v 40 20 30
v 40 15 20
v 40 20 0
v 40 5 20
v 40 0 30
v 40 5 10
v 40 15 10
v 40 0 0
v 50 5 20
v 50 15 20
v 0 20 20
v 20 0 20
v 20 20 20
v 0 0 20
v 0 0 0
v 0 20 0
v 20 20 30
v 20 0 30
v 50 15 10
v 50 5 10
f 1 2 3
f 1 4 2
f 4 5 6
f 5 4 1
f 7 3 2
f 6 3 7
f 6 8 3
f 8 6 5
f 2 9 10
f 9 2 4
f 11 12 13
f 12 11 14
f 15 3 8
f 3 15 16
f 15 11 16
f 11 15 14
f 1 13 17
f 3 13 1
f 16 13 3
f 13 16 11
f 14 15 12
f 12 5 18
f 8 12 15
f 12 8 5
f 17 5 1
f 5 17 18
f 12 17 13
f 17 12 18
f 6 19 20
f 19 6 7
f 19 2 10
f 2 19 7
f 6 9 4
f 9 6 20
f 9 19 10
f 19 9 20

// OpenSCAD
// Base block module
module base_block() {
    // Main rectangular block
    cube([40, 20, 20], center = false);
    // Protruding rectangular section (without vertical extension)
    translate([20, 0, 20])
        cube([20, 20, 10], center = false);
}

// L-shaped connector module
module l_shaped_connector() {
    // Horizontal arm
    cube([30, 10, 10], center = false);
    // Vertical arm repositioned to lie horizontally
    translate([30, 0, 0])
        cube([10, 10, 10], center = false);
}

// Assembly
module assembly() {
    // Layer 1: Base block
    base_block();

    // Layer 2: L-shaped connector repositioned horizontally
    translate([10, 5, 10]) // Adjusted positioning to lie horizontally on the base block
        l_shaped_connector();
}

// Render the assembly
assembly();
